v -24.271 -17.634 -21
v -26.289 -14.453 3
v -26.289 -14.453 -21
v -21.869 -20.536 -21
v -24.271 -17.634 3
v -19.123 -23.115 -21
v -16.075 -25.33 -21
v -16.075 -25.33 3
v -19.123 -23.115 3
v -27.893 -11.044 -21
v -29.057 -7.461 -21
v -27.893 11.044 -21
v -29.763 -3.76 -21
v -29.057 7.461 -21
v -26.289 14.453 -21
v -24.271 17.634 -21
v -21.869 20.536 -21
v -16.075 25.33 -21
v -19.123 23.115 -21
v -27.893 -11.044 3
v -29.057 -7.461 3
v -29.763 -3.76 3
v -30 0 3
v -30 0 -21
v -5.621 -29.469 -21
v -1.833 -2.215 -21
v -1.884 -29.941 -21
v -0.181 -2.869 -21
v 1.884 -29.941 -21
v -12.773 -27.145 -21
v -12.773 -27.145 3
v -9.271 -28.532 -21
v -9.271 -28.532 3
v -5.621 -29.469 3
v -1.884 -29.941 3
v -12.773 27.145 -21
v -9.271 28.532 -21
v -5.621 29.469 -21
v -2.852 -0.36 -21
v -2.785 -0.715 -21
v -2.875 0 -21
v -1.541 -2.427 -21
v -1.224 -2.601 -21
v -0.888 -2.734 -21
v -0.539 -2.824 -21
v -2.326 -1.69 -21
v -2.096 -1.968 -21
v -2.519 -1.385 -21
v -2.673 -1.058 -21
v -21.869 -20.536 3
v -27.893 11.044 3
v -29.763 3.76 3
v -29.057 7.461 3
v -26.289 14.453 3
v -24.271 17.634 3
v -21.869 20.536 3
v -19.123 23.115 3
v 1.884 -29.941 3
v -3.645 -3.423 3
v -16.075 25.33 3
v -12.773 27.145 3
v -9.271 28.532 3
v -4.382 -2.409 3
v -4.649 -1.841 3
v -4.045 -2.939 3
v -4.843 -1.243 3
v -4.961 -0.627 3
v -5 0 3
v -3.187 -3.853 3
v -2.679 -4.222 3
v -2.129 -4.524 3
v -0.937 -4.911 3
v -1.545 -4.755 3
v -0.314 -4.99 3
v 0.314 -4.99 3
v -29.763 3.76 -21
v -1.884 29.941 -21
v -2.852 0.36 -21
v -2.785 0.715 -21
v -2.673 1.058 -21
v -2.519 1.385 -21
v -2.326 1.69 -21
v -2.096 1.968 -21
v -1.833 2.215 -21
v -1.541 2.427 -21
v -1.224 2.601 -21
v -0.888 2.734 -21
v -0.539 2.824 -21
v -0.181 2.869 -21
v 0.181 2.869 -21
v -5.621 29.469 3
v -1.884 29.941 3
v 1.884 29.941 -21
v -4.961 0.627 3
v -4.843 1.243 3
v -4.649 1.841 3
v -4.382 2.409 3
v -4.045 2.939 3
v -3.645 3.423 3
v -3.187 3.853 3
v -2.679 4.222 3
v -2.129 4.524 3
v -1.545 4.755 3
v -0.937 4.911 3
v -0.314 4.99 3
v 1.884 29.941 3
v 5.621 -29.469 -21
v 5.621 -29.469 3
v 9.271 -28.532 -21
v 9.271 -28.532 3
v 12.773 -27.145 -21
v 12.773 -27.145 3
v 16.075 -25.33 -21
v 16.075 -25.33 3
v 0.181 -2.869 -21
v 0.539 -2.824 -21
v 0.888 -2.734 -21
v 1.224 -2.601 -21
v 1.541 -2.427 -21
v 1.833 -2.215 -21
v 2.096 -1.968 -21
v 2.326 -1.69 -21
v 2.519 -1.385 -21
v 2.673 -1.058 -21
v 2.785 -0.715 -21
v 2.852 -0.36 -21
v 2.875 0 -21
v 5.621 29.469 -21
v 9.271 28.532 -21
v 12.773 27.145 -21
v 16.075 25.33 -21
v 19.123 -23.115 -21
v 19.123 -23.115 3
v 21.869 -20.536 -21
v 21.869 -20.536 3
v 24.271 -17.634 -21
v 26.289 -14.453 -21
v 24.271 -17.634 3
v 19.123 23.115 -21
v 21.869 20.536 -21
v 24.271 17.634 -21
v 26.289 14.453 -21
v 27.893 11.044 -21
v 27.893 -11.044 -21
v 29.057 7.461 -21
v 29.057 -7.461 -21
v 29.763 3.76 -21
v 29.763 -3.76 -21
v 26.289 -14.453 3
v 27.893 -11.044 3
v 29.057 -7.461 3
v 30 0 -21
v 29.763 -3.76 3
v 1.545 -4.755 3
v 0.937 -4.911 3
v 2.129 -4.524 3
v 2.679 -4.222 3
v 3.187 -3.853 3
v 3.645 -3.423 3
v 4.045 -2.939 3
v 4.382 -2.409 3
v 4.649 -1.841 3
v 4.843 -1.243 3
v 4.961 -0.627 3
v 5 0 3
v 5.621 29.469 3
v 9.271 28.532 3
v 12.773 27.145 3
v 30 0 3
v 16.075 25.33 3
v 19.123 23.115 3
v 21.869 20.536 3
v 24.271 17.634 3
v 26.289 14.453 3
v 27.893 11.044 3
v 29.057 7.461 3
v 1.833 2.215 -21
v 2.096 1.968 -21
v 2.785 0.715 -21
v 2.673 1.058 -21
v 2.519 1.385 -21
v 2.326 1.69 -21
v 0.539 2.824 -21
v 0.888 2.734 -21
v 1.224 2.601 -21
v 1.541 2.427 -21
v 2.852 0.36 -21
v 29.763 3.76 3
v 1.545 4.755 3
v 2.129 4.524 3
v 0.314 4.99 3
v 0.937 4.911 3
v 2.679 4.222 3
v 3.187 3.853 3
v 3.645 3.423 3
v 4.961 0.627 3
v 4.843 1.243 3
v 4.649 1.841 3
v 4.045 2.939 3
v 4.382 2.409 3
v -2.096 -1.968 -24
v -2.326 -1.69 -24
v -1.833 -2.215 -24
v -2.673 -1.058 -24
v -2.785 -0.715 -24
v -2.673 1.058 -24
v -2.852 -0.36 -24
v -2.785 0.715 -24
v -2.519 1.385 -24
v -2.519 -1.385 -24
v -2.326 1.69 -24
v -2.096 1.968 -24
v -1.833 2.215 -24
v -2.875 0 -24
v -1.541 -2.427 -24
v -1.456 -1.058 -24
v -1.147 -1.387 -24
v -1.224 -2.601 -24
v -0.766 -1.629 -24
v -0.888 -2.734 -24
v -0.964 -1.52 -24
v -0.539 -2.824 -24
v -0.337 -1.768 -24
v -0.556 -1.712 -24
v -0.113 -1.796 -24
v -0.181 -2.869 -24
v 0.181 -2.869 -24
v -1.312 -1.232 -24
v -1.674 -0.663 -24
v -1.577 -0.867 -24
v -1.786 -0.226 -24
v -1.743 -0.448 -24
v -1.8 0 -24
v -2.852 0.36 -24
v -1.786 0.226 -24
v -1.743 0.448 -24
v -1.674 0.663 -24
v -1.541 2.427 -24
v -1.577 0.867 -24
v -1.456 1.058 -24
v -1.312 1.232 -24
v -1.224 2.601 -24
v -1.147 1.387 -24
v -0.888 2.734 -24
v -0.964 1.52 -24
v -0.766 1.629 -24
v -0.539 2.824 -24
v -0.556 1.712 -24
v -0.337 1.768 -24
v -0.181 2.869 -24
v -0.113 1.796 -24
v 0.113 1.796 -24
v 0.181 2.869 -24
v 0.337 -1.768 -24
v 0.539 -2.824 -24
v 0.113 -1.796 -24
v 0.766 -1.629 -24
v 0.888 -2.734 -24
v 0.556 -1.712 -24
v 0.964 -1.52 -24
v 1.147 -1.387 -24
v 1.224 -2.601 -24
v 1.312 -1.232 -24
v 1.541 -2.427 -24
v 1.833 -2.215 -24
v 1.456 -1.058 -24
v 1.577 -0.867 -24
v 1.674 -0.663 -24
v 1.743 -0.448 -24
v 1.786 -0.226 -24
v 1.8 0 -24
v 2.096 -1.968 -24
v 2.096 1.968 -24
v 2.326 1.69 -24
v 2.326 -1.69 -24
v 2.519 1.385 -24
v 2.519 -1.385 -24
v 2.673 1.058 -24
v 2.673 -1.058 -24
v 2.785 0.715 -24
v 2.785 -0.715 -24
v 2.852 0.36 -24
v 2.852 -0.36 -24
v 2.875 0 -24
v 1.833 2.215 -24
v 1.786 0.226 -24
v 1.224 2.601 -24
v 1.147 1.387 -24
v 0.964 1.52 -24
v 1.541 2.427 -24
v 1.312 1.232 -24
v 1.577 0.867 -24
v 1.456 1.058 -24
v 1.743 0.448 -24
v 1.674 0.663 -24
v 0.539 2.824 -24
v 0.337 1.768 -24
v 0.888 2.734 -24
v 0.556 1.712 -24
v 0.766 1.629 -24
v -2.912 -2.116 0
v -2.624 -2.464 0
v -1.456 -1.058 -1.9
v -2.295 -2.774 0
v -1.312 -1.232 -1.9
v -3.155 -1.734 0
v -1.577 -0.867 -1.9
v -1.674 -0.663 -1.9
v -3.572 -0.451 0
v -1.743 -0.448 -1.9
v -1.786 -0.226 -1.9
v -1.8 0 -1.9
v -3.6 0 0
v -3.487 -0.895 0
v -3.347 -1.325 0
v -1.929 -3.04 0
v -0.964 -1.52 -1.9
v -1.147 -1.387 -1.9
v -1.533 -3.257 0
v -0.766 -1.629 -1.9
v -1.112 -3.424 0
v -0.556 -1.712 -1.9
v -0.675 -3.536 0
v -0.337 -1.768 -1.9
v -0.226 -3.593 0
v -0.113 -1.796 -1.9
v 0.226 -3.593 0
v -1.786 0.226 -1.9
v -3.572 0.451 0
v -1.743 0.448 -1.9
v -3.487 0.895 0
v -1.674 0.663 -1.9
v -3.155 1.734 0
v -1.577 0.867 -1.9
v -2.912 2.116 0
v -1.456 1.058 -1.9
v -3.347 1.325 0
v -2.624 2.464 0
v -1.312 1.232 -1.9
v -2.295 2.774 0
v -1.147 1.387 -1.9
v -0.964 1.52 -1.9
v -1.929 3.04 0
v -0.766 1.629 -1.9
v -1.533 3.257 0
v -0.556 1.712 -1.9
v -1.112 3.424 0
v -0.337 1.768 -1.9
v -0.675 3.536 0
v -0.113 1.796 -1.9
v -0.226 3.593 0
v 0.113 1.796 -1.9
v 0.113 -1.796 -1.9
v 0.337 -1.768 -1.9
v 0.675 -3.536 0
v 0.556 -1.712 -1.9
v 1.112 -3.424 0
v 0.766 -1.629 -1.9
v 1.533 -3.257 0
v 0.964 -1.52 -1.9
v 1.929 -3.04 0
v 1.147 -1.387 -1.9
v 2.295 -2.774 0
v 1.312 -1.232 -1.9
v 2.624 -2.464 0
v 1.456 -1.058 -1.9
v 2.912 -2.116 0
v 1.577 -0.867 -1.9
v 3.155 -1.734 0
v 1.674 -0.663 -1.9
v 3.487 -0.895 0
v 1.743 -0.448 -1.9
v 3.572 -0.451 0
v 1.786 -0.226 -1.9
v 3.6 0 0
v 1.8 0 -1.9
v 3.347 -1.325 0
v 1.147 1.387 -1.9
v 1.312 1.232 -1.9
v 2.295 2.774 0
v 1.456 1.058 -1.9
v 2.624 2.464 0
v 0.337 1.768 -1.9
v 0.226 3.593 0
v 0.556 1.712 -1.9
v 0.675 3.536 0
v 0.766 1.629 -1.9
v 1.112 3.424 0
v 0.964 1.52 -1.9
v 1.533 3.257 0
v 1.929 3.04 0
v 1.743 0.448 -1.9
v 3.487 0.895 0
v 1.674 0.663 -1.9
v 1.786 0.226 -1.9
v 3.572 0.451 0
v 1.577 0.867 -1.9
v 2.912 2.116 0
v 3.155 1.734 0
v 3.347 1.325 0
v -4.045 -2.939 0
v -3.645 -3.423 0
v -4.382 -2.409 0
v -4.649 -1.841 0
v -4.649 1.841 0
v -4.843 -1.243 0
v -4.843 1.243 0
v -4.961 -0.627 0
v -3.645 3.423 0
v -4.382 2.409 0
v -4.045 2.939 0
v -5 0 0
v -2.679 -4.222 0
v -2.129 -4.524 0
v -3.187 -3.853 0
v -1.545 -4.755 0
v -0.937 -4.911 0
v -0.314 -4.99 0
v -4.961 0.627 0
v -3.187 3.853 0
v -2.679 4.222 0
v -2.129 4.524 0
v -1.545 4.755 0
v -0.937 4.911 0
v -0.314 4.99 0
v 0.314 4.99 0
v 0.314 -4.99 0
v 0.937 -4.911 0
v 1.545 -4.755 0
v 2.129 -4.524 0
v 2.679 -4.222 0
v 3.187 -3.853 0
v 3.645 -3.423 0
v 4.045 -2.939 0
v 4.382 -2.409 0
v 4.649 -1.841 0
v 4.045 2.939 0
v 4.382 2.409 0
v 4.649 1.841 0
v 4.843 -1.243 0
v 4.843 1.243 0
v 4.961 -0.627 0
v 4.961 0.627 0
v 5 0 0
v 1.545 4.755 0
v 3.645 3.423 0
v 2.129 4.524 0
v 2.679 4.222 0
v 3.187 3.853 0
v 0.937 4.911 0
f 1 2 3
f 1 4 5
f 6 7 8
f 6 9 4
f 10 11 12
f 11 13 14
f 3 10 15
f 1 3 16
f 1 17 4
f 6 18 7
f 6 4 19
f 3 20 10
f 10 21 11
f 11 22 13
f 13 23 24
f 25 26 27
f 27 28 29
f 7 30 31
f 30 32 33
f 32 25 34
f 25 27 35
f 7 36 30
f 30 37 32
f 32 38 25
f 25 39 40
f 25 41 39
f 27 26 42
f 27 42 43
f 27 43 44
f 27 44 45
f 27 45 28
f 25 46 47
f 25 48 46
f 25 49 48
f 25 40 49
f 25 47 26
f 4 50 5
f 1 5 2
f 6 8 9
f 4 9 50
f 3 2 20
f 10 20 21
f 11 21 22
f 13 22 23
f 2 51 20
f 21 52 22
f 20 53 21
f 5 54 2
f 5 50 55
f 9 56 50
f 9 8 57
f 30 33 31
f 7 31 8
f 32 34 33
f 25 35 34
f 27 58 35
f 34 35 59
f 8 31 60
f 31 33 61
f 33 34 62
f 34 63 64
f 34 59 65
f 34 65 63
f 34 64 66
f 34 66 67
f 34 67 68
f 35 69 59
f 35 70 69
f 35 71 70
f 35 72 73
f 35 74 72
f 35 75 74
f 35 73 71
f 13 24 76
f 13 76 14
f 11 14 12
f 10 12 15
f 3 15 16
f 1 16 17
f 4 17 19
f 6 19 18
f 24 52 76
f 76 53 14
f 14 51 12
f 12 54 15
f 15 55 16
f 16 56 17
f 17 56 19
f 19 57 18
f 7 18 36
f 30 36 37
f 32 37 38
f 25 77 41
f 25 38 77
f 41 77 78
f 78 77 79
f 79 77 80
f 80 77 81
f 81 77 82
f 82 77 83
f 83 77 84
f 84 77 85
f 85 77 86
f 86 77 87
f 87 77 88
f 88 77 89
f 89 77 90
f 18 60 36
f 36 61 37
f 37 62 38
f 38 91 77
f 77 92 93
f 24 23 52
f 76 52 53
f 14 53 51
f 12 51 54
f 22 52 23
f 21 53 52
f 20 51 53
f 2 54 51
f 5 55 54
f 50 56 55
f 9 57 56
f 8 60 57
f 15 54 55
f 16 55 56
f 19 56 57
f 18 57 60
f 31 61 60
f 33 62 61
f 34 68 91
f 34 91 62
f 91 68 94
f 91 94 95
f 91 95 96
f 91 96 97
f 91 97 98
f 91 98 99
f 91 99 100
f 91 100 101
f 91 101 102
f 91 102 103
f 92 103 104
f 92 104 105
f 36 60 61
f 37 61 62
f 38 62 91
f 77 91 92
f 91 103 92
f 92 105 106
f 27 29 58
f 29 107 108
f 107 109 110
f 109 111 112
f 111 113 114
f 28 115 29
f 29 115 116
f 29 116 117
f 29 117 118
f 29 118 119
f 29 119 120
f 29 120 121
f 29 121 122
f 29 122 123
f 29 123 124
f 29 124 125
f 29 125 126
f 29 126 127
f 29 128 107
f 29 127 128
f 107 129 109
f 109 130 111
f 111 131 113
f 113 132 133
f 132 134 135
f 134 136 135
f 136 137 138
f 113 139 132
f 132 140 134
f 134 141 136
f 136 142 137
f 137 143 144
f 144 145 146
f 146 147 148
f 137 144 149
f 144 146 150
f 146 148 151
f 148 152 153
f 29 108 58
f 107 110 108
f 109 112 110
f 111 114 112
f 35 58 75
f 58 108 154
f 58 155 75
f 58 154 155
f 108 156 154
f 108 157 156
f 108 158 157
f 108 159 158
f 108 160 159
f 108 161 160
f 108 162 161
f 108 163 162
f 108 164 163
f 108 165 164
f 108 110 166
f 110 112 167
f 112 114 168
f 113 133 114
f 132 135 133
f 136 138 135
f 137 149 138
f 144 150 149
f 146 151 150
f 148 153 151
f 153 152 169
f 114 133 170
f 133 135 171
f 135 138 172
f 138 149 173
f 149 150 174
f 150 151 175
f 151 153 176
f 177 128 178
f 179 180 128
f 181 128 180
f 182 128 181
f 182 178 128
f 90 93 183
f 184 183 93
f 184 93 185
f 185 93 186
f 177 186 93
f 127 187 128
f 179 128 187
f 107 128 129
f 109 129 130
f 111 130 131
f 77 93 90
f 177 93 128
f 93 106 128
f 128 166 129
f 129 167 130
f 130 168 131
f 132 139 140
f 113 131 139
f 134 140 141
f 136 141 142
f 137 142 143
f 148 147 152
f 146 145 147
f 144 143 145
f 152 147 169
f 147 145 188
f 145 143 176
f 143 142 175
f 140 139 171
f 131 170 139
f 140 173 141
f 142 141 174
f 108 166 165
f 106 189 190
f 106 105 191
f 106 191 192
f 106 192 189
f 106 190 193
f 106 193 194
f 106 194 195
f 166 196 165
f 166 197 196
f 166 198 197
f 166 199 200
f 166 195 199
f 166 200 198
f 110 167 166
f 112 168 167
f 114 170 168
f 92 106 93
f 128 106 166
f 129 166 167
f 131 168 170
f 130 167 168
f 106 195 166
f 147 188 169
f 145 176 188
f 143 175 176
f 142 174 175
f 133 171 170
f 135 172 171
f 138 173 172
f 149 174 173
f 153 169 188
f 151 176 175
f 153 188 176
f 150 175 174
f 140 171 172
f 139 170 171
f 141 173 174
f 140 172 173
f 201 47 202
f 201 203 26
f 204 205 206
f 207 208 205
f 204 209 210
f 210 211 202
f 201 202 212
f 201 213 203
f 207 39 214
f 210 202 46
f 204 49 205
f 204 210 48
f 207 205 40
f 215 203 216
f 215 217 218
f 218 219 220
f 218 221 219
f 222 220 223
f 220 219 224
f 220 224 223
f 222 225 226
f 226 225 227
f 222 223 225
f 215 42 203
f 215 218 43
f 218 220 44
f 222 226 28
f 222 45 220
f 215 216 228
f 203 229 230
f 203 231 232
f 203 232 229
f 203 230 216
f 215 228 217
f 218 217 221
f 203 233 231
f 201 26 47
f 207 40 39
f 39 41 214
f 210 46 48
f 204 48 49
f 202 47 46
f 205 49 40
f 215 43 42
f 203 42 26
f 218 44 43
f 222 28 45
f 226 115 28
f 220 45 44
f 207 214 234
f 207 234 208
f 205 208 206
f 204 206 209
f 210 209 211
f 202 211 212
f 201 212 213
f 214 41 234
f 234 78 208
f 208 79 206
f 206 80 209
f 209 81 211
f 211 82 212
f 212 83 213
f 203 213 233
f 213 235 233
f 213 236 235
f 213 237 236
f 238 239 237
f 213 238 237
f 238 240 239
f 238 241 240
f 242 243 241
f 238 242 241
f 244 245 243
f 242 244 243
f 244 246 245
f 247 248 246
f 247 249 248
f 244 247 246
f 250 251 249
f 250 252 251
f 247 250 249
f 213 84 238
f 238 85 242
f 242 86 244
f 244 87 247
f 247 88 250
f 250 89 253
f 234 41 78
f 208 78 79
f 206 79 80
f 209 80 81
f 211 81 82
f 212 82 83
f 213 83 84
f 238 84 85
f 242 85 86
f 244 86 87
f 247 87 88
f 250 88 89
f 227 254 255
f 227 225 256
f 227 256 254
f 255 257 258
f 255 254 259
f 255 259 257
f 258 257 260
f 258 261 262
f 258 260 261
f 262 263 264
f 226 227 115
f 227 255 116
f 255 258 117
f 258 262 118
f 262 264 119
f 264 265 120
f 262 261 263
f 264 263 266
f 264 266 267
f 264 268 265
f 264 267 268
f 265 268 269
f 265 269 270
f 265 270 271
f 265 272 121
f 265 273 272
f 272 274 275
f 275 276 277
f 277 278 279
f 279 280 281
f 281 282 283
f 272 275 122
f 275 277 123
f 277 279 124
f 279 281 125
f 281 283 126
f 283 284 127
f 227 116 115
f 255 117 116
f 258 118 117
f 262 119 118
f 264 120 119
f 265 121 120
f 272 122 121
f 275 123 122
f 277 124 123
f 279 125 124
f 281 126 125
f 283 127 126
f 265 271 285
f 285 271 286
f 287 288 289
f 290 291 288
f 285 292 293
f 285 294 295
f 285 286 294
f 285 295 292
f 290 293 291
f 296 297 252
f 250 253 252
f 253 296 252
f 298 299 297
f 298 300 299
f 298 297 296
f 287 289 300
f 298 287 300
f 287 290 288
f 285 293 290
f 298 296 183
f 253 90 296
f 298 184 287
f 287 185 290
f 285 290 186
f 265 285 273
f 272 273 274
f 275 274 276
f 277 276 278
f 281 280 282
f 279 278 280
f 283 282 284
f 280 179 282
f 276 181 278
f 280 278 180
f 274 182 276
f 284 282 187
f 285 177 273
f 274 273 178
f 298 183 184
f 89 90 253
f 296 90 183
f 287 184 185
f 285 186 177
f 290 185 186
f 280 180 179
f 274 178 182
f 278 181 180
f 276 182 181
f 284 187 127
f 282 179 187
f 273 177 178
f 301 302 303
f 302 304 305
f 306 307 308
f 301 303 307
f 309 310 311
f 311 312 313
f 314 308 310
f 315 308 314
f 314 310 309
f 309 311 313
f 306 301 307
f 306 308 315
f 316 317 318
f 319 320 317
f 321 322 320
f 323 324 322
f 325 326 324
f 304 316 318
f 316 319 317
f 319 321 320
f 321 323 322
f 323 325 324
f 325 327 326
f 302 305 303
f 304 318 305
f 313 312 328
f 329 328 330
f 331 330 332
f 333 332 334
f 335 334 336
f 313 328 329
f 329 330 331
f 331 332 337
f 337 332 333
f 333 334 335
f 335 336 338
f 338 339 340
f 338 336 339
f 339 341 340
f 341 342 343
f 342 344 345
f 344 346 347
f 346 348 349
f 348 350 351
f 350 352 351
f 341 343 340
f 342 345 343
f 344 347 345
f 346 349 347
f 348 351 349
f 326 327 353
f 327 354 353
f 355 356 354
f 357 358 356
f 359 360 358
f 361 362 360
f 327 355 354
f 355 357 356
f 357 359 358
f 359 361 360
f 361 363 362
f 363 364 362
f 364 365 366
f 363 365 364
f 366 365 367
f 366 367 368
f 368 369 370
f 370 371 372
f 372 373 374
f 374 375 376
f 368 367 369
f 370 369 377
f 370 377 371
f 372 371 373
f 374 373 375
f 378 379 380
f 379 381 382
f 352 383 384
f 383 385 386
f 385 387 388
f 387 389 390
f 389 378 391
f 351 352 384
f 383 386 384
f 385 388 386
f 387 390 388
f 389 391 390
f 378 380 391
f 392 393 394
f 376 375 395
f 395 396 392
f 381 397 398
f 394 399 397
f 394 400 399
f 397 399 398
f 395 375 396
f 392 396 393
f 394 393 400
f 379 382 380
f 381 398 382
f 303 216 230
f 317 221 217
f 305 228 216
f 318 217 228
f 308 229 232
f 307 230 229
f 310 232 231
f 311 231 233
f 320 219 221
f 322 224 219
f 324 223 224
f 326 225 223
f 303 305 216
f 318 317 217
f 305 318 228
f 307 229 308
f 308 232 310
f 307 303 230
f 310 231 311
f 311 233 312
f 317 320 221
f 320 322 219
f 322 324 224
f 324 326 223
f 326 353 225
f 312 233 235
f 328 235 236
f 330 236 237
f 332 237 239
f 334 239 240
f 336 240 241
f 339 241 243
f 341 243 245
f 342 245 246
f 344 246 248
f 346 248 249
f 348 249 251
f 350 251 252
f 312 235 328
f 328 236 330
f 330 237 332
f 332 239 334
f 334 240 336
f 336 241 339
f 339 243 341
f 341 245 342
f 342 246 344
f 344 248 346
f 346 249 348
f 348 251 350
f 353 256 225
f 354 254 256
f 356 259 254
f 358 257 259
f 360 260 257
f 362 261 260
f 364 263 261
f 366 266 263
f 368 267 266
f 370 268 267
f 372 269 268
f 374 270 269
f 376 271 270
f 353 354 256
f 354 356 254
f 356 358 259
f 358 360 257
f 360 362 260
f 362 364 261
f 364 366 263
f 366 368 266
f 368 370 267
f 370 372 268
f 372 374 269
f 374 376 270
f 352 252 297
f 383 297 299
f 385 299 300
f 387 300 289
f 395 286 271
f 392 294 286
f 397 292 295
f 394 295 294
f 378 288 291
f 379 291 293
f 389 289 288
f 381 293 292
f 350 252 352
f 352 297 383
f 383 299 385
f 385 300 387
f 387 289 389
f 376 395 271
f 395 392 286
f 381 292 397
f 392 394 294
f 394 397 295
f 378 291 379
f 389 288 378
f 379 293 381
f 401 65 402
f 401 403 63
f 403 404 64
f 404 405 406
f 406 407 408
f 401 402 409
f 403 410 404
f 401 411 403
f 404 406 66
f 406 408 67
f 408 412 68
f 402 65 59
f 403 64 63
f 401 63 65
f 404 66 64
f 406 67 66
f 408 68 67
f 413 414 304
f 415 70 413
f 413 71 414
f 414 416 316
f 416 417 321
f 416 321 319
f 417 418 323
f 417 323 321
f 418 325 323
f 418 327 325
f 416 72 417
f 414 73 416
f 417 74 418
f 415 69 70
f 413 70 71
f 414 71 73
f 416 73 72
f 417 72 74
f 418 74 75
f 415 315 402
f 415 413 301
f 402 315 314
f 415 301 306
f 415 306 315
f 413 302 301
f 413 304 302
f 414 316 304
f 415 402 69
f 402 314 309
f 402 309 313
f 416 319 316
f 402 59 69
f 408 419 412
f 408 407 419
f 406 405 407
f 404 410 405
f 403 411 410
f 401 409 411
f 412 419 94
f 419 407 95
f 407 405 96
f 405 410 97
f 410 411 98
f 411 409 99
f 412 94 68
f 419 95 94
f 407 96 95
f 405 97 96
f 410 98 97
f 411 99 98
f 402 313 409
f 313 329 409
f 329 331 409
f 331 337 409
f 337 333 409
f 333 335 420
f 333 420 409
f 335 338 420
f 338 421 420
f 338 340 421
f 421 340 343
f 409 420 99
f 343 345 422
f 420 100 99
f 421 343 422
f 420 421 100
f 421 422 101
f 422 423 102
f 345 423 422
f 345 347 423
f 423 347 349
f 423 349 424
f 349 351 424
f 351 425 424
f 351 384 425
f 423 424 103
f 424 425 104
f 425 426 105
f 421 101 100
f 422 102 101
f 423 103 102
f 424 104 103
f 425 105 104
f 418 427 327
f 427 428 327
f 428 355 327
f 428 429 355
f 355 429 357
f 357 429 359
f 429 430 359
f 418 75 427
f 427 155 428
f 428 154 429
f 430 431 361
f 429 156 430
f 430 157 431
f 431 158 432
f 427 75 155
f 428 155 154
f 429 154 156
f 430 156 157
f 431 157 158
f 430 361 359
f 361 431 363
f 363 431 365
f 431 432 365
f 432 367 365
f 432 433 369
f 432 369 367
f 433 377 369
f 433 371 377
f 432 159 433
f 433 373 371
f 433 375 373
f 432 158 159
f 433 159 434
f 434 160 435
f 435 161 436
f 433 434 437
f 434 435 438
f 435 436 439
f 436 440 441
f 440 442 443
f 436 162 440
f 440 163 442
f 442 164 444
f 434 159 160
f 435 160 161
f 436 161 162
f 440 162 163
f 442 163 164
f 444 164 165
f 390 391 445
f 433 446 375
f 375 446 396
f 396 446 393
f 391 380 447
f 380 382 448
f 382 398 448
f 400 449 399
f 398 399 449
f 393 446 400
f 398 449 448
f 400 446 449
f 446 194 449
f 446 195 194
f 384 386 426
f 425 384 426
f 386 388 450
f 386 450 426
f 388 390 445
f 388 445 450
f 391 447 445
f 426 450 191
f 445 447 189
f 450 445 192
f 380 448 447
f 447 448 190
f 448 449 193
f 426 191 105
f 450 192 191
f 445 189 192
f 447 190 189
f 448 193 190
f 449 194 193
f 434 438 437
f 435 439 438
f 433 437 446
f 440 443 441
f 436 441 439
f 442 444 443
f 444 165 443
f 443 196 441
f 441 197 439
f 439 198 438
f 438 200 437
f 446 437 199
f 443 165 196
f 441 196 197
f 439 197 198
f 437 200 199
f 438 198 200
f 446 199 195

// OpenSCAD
$fn = 50;


difference() {
	union() {
		translate(v = [0, 0, -21.0000000000]) {
			cylinder(h = 24, r = 30.0000000000);
		}
		#translate(v = [0, 0, -24.0000000000]) {
			cylinder(h = 24, r = 2.8750000000);
		}
	}
	union() {
		translate(v = [0, 0, 0]) {
			rotate(a = [0, 0, 0]) {
				difference() {
					union() {
						translate(v = [0, 0, -24.0000000000]) {
							cylinder(h = 24, r = 1.5000000000);
						}
						translate(v = [0, 0, -1.9000000000]) {
							cylinder(h = 1.9000000000, r1 = 1.8000000000, r2 = 3.6000000000);
						}
						translate(v = [0, 0, -24.0000000000]) {
							cylinder(h = 24, r = 1.8000000000);
						}
						translate(v = [0, 0, -24.0000000000]) {
							cylinder(h = 24, r = 1.5000000000);
						}
					}
					union();
				}
			}
		}
		#cylinder(h = 3, r = 5.0000000000);
	}
}
